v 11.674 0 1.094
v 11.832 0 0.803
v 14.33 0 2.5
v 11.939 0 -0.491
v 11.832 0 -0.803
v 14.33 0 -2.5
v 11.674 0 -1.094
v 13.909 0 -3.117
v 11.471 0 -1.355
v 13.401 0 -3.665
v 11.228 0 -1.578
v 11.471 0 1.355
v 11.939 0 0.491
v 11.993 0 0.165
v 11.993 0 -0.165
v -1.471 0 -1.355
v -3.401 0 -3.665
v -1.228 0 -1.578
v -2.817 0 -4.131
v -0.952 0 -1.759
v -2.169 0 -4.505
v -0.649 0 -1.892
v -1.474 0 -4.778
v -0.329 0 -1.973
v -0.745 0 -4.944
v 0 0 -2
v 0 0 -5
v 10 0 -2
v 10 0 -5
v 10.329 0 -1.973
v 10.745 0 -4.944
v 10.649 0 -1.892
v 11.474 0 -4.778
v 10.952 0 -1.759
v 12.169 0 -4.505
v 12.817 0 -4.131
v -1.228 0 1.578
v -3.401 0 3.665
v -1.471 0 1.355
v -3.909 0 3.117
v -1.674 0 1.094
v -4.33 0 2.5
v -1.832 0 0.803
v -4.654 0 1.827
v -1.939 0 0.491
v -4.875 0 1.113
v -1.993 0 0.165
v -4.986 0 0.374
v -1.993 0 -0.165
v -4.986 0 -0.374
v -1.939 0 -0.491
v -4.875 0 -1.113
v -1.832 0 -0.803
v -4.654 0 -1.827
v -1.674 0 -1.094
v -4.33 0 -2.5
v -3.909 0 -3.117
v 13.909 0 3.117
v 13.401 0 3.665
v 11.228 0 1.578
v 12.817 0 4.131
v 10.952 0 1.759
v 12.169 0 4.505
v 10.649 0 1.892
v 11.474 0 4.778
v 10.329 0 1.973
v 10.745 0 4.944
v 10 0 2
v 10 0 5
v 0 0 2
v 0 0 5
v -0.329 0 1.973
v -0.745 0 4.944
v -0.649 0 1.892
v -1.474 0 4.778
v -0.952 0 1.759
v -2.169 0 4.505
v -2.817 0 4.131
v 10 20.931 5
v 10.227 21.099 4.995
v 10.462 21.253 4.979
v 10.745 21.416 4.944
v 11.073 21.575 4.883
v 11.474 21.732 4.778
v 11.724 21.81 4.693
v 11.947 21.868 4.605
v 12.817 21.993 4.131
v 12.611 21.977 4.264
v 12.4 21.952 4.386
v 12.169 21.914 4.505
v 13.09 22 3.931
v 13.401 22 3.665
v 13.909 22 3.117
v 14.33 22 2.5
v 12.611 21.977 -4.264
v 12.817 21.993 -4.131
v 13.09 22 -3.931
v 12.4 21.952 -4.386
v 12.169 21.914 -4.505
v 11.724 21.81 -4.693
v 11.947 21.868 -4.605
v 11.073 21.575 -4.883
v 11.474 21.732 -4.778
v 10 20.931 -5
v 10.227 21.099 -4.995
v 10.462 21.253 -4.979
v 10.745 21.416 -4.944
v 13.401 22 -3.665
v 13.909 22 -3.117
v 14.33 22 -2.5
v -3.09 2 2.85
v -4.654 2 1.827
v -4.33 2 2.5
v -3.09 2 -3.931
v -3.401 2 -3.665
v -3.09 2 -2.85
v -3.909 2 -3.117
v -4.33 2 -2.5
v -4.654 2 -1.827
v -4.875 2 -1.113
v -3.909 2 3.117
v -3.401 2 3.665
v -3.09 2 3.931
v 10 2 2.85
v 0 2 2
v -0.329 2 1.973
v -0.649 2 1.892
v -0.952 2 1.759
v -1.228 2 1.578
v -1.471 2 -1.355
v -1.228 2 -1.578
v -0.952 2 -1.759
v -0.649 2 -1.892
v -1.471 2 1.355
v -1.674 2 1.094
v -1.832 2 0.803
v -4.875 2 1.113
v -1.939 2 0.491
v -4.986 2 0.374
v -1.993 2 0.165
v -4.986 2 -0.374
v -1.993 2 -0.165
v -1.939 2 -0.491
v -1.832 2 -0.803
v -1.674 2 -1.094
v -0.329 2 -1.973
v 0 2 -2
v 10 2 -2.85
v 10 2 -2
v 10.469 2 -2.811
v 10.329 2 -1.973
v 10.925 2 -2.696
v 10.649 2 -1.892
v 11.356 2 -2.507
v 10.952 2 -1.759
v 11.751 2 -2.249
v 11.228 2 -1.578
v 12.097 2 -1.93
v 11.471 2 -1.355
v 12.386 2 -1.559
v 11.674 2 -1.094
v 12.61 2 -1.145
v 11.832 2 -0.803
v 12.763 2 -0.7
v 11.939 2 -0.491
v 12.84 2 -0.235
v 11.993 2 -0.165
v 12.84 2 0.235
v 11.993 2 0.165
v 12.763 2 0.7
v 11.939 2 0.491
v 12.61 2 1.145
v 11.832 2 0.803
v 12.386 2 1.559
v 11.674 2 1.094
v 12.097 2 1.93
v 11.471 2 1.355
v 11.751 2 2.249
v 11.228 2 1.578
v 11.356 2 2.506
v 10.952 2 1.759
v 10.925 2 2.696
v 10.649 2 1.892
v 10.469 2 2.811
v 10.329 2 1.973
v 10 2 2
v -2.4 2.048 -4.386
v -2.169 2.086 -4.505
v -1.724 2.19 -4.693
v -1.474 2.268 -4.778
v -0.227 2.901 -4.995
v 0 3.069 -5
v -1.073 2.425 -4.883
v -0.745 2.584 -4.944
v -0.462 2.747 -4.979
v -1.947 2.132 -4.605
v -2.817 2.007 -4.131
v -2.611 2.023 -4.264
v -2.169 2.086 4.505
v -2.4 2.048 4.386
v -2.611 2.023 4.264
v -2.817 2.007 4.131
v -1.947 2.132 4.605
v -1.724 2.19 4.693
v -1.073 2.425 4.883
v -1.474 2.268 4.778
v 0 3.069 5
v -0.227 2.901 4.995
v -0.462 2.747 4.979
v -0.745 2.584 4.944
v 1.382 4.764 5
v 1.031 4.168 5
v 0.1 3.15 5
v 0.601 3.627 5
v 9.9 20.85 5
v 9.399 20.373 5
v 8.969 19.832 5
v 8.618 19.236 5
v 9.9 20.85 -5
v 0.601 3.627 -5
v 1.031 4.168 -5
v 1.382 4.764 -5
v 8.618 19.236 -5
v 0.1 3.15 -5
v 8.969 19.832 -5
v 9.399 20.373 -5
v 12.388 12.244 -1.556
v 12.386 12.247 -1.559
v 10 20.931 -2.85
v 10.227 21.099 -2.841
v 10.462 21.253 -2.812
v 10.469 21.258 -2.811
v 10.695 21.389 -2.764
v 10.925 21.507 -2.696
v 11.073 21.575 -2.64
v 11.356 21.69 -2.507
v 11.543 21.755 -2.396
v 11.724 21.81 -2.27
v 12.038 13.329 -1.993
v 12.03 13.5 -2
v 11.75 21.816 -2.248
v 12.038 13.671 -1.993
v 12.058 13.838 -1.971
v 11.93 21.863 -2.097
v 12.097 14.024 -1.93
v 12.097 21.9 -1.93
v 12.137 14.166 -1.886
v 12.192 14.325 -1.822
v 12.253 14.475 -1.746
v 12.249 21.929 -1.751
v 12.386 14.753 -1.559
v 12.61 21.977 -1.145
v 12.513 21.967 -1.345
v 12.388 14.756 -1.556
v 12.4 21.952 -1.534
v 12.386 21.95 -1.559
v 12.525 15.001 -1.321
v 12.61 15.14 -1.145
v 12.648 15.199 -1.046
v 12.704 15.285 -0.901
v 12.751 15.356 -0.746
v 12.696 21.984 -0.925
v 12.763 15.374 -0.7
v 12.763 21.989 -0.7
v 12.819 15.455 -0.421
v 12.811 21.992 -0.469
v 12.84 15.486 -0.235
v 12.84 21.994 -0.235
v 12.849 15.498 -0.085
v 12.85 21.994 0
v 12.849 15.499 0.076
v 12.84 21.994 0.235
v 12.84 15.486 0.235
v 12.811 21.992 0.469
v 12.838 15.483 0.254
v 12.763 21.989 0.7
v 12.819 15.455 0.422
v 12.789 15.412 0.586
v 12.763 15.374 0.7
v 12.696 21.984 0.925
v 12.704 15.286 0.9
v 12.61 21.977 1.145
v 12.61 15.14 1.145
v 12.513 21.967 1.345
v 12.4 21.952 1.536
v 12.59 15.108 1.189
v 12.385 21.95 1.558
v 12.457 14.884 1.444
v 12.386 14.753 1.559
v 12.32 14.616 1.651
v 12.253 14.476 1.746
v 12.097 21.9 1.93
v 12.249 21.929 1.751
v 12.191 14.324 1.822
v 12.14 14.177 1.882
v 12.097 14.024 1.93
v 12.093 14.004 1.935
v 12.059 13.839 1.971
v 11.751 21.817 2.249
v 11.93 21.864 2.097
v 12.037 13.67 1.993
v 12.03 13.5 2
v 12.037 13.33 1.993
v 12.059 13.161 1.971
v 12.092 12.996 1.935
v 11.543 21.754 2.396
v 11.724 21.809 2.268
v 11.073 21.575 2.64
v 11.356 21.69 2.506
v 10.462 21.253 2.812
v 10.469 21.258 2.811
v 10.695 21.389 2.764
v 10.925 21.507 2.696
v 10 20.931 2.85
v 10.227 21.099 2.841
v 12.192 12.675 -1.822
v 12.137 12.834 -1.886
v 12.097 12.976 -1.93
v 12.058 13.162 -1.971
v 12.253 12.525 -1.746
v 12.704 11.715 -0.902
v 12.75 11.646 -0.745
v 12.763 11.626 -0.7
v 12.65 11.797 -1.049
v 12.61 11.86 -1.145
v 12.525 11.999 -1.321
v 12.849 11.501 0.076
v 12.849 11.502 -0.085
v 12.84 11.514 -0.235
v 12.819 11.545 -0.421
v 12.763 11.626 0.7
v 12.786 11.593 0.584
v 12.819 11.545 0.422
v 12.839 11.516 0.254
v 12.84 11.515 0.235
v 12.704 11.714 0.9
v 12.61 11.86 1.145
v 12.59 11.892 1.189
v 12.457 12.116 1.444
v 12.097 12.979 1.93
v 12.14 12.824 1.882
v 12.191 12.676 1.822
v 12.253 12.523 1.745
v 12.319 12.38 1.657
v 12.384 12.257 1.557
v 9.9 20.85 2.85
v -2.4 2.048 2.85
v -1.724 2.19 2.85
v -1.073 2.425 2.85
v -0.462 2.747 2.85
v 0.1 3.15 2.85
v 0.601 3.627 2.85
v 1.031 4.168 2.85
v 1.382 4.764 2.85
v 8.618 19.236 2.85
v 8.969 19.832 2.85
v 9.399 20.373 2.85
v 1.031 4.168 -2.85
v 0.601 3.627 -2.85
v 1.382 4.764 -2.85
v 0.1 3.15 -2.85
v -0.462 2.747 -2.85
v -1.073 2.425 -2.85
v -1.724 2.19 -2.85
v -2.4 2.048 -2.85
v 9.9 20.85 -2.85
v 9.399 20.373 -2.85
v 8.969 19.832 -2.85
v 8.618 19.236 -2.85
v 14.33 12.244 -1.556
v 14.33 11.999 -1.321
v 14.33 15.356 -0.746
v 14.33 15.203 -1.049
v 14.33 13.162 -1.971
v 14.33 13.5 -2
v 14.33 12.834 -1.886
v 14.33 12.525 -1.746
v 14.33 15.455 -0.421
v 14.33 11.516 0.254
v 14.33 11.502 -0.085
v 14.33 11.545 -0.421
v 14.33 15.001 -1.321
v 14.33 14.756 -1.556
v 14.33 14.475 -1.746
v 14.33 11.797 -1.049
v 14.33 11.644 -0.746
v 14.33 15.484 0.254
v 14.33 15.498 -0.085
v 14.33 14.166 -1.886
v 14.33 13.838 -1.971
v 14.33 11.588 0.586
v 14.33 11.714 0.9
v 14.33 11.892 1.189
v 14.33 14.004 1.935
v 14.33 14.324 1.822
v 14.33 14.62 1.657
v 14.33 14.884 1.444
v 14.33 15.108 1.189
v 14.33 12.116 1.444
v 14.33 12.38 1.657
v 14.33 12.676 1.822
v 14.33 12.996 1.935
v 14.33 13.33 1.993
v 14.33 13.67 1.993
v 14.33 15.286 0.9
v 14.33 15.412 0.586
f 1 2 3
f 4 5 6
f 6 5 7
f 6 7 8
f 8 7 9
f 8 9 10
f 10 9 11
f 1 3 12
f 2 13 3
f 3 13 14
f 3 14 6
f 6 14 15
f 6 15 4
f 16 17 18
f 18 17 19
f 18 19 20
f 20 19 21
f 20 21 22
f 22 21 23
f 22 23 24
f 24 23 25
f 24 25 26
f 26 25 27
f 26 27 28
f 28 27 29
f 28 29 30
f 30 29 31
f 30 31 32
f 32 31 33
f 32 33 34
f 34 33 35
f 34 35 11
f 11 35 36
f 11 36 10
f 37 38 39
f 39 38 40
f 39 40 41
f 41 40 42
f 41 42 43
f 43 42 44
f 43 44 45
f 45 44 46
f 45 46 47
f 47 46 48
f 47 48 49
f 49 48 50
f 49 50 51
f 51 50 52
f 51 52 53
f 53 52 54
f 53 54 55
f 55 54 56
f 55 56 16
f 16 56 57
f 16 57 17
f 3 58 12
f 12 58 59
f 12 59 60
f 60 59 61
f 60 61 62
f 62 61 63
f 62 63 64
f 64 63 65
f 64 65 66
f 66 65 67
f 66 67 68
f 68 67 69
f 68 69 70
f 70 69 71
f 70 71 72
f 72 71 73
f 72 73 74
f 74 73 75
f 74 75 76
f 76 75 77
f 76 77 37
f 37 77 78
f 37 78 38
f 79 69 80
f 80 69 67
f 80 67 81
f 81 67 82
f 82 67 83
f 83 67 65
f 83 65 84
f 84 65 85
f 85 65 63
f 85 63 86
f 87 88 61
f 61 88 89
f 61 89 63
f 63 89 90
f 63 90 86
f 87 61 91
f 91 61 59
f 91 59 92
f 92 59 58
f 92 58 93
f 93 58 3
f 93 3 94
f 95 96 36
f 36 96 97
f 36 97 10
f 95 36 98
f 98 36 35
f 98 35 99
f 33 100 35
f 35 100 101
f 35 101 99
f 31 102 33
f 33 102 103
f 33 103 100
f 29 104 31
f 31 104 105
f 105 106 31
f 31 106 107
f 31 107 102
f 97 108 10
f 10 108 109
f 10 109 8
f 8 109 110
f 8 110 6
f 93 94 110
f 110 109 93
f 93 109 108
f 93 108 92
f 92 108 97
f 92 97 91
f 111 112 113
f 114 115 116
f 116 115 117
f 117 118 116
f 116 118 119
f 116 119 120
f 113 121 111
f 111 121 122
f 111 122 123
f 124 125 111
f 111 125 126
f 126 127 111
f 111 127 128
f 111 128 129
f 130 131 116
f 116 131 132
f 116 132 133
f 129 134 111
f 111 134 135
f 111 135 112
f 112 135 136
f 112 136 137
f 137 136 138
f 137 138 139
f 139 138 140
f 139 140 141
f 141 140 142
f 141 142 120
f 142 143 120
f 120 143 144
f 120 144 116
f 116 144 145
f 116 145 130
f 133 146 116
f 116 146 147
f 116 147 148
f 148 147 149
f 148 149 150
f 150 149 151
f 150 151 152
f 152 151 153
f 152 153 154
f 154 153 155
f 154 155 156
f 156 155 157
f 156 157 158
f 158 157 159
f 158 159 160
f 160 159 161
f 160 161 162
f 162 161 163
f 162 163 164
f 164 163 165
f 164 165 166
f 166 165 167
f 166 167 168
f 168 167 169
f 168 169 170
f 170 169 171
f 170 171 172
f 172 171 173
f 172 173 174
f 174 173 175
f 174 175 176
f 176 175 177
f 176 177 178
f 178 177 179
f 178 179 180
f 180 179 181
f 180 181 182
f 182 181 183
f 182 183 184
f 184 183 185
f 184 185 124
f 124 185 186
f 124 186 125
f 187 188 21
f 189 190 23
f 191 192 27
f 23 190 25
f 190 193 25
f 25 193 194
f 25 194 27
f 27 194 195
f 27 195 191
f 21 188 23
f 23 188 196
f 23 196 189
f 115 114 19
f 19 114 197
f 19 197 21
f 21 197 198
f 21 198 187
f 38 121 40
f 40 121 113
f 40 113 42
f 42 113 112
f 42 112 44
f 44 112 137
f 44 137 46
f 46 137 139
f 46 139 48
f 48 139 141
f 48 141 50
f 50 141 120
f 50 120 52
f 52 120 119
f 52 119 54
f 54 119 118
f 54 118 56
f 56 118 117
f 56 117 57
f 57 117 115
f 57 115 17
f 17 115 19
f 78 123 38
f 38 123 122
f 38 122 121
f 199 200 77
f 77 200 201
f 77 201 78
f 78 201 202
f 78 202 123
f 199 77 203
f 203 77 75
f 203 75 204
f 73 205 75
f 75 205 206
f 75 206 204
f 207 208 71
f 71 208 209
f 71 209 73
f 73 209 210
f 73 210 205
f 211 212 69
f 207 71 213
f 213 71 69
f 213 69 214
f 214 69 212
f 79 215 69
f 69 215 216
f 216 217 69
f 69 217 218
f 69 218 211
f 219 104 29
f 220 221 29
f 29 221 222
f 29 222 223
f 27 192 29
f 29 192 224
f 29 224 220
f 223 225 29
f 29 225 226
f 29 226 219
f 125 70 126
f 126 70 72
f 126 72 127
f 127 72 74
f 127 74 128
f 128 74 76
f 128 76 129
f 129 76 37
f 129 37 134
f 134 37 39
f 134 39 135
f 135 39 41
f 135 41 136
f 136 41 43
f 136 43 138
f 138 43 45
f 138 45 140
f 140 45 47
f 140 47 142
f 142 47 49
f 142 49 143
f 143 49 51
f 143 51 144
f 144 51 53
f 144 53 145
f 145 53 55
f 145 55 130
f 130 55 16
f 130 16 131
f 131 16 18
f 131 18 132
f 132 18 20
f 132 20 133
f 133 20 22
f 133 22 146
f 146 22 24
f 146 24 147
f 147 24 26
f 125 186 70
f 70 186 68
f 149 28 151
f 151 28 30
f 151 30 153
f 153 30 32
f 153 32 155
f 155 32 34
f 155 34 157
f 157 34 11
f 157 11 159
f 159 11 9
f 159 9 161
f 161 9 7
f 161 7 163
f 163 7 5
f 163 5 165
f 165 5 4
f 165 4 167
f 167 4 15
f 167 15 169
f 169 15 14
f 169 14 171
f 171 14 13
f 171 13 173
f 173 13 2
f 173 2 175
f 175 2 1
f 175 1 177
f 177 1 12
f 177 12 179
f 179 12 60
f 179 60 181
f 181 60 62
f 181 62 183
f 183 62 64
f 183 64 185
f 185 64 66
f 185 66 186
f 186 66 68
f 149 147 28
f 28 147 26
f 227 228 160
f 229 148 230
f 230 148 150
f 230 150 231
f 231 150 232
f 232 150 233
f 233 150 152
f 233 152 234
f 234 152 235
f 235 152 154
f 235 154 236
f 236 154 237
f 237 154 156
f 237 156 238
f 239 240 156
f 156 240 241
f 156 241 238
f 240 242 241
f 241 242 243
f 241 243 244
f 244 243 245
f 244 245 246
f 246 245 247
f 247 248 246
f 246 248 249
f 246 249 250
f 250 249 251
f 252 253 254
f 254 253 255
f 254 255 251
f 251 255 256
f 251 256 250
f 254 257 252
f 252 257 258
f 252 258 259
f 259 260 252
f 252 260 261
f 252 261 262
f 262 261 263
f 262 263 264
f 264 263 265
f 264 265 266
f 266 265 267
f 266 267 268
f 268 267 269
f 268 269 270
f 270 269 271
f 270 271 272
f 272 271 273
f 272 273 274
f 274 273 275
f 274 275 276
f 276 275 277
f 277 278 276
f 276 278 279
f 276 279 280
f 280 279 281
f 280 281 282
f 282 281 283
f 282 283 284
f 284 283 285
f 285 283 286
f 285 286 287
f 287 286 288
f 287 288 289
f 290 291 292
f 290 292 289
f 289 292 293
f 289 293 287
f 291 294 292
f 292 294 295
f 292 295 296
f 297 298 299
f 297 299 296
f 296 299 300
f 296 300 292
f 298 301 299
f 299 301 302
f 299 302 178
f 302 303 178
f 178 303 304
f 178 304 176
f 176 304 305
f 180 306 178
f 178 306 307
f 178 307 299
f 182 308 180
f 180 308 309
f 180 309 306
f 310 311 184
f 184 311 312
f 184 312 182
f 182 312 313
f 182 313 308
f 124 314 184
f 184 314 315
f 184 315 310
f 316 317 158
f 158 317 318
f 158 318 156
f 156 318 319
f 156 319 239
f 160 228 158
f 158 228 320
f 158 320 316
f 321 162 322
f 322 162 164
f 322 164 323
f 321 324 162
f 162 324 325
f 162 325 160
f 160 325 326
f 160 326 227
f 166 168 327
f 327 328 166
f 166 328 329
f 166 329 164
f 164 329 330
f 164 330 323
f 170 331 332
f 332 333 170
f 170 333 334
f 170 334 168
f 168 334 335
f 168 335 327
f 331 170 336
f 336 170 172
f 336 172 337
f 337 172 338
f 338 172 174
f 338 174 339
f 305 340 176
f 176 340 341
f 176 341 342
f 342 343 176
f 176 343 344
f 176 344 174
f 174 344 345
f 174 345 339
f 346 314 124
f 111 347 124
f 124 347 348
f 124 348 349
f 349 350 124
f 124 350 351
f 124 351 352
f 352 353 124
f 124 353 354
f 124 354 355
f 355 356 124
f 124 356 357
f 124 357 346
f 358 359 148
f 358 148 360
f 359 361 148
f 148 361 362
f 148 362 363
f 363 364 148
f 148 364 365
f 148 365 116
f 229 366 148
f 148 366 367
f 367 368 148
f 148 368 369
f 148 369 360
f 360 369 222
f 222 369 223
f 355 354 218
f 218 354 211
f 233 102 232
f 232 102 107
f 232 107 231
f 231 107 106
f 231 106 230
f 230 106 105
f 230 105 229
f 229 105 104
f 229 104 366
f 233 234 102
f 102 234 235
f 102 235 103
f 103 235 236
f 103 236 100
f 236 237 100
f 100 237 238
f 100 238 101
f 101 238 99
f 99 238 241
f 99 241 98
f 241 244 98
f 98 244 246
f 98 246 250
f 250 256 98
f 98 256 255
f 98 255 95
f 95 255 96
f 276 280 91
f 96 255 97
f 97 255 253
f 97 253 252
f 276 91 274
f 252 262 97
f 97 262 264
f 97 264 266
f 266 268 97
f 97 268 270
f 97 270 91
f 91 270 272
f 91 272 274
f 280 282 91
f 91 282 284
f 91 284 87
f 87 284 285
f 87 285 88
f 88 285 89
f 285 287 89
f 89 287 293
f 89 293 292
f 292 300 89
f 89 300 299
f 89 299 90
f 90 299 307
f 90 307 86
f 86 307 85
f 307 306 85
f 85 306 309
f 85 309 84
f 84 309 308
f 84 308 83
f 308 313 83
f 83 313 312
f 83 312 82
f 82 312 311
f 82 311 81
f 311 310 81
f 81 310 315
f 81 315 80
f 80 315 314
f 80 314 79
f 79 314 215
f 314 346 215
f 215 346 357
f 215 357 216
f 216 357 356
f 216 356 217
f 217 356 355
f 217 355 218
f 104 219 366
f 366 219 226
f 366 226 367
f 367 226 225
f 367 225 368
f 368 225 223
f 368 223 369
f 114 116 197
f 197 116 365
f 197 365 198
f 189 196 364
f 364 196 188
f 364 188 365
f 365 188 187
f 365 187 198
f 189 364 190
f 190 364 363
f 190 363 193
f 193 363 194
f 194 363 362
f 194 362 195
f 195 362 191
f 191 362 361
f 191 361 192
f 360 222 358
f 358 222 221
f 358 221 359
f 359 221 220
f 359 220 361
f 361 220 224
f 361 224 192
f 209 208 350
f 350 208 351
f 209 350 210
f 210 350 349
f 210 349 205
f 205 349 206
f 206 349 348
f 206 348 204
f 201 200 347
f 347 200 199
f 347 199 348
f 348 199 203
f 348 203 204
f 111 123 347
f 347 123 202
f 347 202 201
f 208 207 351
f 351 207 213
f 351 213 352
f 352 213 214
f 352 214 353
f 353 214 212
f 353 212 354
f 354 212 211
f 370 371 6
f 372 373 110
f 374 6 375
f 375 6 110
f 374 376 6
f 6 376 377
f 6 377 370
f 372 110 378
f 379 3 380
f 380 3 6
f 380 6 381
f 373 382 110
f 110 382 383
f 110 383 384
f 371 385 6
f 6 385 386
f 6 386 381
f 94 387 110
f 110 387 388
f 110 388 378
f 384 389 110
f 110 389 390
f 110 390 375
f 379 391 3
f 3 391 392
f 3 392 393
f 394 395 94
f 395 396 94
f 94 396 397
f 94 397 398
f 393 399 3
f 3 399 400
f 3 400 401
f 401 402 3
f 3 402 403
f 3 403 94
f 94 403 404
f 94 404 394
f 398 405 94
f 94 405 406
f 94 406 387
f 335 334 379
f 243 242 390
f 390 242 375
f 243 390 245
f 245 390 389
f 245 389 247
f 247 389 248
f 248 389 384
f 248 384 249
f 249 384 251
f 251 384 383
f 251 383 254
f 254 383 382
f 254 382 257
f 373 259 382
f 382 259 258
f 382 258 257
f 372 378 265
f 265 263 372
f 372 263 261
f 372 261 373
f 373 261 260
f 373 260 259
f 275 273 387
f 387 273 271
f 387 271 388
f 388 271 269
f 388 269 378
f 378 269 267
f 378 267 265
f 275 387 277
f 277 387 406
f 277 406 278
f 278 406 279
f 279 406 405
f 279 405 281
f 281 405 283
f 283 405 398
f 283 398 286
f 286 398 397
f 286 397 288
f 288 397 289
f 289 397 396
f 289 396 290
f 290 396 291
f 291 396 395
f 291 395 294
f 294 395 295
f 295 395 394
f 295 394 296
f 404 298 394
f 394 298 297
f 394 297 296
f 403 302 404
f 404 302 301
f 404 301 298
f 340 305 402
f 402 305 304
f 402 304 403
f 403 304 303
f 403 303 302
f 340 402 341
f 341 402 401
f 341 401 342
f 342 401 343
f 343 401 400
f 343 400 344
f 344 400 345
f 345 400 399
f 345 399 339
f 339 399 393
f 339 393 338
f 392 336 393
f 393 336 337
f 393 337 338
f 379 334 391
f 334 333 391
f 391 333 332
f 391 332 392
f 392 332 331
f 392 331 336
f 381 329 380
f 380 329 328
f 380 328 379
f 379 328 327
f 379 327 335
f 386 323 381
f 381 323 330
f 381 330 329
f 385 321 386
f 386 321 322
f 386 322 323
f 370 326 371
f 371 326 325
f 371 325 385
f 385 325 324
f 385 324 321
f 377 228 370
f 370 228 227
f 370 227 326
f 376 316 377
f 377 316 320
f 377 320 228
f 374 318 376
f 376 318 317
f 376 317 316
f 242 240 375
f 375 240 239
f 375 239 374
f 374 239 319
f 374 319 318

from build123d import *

# Parameters (mm, degrees)
BOSS_EXTRUDE1_DEPTH = 2
SKETCH2_W           = 10
SKETCH2_H           = 2.15
BOSS_EXTRUDE2_DEPTH = 20
CUT_EXTRUDE1_DEPTH  = 29.442925307
FILLET1_START       = -6
FILLET1_DEPTH       = 12
FILLET1_START_2     = 2.85
FILLET1_2_DEPTH     = 1.775923077
FILLET1_START_3     = -4.604846154
FILLET1_3_DEPTH     = 1.754846154
FILLET1_START_4     = -5
FILLET1_4_DEPTH     = 0.395153846
FILLET1_START_5     = 4.625923077
FILLET1_5_DEPTH     = 0.374076923
FILLET1_START_6     = 2
FILLET1_6_DEPTH     = 2.763932023
CUT_EXTRUDE2_DEPTH  = 28.092434523
SKETCH5_R           = 2
CUT_EXTRUDE3_DEPTH  = 30.709490335


with BuildPart() as part:
    # Sketch1 → Boss-Extrude1 (new body)
    with BuildSketch(Plane(origin=(0, 0, 0), x_dir=(1, 0, 0), z_dir=(0, 1, 0))):
        with BuildLine():
            Line((0, 5), (10, 5))
            ThreePointArc((10, 5), (15, 0), (10, -5))
            Line((10, -5), (0, -5))
            ThreePointArc((0, -5), (-5, 0), (0, 5))
        make_face()
        with BuildLine():
            Line((0, 2), (10, 2))
            ThreePointArc((10, 2), (12, 0), (10, -2))
            Line((10, -2), (0, -2))
            ThreePointArc((0, -2), (-2, 0), (0, 2))
        make_face(mode=Mode.SUBTRACT)
    extrude(amount=BOSS_EXTRUDE1_DEPTH)

    # Sketch2 → Boss-Extrude2 (add)
    with BuildSketch(Plane(origin=(0, 2, 0), x_dir=(1, 0, 0), z_dir=(0, 1, 0))):
        with BuildLine():
            ThreePointArc((10, -2.85), (12.85, 0), (10, 2.85))
            Line((10, 2.85), (10, 5))
            ThreePointArc((10, 5), (15, 0), (10, -5))
            Line((10, -5), (10, -2.85))
        make_face()
        with Locations((5, 3.925)):
            Rectangle(SKETCH2_W, SKETCH2_H)
        with Locations((5, -3.925)):
            Rectangle(SKETCH2_W, SKETCH2_H)
    extrude(amount=BOSS_EXTRUDE2_DEPTH)

    # Sketch3 → Cut-Extrude1 (cut, through all)
    with BuildSketch(Plane(origin=(0, 0, -5), x_dir=(-1, 0, 0), z_dir=(0, 0, -1))):
        Polygon((0, 2), (-10, 22), (0, 22), align=None)
    extrude(amount=-CUT_EXTRUDE1_DEPTH, mode=Mode.SUBTRACT)

    # Fillet1: read off the stored shape, not the designer's step
    # Fillet1 outline → Fillet1 (cut)
    with BuildSketch(Plane.XY.offset(FILLET1_START)):
        with BuildLine():
            ThreePointArc((8.618033989, 19.236067977), (10.461514383, 21.253254042), (13.090169944, 22))
            Line((13.090169944, 22), (10, 22))
            Line((10, 22), (8.618033989, 19.236067977))
        make_face()
    extrude(amount=FILLET1_DEPTH, mode=Mode.SUBTRACT)

    # Fillet1 2 outline → Fillet1 2 (add)
    with BuildSketch(Plane.XY.offset(FILLET1_START_2)):
        with BuildLine():
            Line((0, 2), (1.381966011, 4.763932023))
            ThreePointArc((1.381966011, 4.763932023), (-0.461514383, 2.746745958), (-3.090169944, 2))
            Line((-3.090169944, 2), (0, 2))
        make_face()
    extrude(amount=FILLET1_2_DEPTH)

    # Fillet1 3 outline → Fillet1 3 (add)
    with BuildSketch(Plane.XY.offset(FILLET1_START_3)):
        with BuildLine():
            Line((0, 2), (1.381966011, 4.763932023))
            ThreePointArc((1.381966011, 4.763932023), (-0.461514383, 2.746745958), (-3.090169944, 2))
            Line((-3.090169944, 2), (0, 2))
        make_face()
    extrude(amount=FILLET1_3_DEPTH)

    # Fillet1 4 outline → Fillet1 4 (add)
    with BuildSketch(Plane.XY.offset(FILLET1_START_4)):
        with BuildLine():
            Line((0, 2), (1.381966011, 4.763932023))
            ThreePointArc((1.381966011, 4.763932023), (-0.461514383, 2.746745958), (-3.090169944, 2))
            Line((-3.090169944, 2), (0, 2))
        make_face()
    extrude(amount=FILLET1_4_DEPTH)

    # Fillet1 5 outline → Fillet1 5 (add)
    with BuildSketch(Plane.XY.offset(FILLET1_START_5)):
        with BuildLine():
            Line((0, 2), (1.381966011, 4.763932023))
            ThreePointArc((1.381966011, 4.763932023), (-0.461514383, 2.746745958), (-3.090169944, 2))
            Line((-3.090169944, 2), (0, 2))
        make_face()
    extrude(amount=FILLET1_5_DEPTH)

    # Fillet1 6 outline → Fillet1 6 (cut)
    with BuildSketch(Plane(origin=(0, 0, 0), x_dir=(1, 0, 0), z_dir=(0, 1, 0)).offset(FILLET1_START_6)):
        with BuildLine():
            Line((-5, -5), (0, -5))
            ThreePointArc((0, -5), (-3.535533906, -3.535533906), (-5, 0))
            Line((-5, 0), (-5, -5))
        make_face()
        with BuildLine():
            Line((-5, 5), (-5, 0))
            ThreePointArc((-5, 0), (-3.535533906, 3.535533906), (0, 5))
            Line((0, 5), (-5, 5))
        make_face()
    extrude(amount=FILLET1_6_DEPTH, mode=Mode.SUBTRACT)

    # Sketch4 → Cut-Extrude2 (cut, through all)
    with BuildSketch(Plane.XZ):
        with BuildLine():
            Line((14.330127019, 2.5), (14.330127019, -2.5))
            ThreePointArc((14.330127019, -2.5), (15, 0), (14.330127019, 2.5))
        make_face()
    extrude(amount=-CUT_EXTRUDE2_DEPTH, mode=Mode.SUBTRACT)

    # Sketch5 → Cut-Extrude3 (cut, through all)
    with BuildSketch(Plane(origin=(14.330127019, 0, 0), x_dir=(0, 0, -1), z_dir=(1, 0, 0))):
        with Locations((0, 13.5)):
            Circle(SKETCH5_R)
    extrude(amount=-CUT_EXTRUDE3_DEPTH, mode=Mode.SUBTRACT)


solid = part.part
